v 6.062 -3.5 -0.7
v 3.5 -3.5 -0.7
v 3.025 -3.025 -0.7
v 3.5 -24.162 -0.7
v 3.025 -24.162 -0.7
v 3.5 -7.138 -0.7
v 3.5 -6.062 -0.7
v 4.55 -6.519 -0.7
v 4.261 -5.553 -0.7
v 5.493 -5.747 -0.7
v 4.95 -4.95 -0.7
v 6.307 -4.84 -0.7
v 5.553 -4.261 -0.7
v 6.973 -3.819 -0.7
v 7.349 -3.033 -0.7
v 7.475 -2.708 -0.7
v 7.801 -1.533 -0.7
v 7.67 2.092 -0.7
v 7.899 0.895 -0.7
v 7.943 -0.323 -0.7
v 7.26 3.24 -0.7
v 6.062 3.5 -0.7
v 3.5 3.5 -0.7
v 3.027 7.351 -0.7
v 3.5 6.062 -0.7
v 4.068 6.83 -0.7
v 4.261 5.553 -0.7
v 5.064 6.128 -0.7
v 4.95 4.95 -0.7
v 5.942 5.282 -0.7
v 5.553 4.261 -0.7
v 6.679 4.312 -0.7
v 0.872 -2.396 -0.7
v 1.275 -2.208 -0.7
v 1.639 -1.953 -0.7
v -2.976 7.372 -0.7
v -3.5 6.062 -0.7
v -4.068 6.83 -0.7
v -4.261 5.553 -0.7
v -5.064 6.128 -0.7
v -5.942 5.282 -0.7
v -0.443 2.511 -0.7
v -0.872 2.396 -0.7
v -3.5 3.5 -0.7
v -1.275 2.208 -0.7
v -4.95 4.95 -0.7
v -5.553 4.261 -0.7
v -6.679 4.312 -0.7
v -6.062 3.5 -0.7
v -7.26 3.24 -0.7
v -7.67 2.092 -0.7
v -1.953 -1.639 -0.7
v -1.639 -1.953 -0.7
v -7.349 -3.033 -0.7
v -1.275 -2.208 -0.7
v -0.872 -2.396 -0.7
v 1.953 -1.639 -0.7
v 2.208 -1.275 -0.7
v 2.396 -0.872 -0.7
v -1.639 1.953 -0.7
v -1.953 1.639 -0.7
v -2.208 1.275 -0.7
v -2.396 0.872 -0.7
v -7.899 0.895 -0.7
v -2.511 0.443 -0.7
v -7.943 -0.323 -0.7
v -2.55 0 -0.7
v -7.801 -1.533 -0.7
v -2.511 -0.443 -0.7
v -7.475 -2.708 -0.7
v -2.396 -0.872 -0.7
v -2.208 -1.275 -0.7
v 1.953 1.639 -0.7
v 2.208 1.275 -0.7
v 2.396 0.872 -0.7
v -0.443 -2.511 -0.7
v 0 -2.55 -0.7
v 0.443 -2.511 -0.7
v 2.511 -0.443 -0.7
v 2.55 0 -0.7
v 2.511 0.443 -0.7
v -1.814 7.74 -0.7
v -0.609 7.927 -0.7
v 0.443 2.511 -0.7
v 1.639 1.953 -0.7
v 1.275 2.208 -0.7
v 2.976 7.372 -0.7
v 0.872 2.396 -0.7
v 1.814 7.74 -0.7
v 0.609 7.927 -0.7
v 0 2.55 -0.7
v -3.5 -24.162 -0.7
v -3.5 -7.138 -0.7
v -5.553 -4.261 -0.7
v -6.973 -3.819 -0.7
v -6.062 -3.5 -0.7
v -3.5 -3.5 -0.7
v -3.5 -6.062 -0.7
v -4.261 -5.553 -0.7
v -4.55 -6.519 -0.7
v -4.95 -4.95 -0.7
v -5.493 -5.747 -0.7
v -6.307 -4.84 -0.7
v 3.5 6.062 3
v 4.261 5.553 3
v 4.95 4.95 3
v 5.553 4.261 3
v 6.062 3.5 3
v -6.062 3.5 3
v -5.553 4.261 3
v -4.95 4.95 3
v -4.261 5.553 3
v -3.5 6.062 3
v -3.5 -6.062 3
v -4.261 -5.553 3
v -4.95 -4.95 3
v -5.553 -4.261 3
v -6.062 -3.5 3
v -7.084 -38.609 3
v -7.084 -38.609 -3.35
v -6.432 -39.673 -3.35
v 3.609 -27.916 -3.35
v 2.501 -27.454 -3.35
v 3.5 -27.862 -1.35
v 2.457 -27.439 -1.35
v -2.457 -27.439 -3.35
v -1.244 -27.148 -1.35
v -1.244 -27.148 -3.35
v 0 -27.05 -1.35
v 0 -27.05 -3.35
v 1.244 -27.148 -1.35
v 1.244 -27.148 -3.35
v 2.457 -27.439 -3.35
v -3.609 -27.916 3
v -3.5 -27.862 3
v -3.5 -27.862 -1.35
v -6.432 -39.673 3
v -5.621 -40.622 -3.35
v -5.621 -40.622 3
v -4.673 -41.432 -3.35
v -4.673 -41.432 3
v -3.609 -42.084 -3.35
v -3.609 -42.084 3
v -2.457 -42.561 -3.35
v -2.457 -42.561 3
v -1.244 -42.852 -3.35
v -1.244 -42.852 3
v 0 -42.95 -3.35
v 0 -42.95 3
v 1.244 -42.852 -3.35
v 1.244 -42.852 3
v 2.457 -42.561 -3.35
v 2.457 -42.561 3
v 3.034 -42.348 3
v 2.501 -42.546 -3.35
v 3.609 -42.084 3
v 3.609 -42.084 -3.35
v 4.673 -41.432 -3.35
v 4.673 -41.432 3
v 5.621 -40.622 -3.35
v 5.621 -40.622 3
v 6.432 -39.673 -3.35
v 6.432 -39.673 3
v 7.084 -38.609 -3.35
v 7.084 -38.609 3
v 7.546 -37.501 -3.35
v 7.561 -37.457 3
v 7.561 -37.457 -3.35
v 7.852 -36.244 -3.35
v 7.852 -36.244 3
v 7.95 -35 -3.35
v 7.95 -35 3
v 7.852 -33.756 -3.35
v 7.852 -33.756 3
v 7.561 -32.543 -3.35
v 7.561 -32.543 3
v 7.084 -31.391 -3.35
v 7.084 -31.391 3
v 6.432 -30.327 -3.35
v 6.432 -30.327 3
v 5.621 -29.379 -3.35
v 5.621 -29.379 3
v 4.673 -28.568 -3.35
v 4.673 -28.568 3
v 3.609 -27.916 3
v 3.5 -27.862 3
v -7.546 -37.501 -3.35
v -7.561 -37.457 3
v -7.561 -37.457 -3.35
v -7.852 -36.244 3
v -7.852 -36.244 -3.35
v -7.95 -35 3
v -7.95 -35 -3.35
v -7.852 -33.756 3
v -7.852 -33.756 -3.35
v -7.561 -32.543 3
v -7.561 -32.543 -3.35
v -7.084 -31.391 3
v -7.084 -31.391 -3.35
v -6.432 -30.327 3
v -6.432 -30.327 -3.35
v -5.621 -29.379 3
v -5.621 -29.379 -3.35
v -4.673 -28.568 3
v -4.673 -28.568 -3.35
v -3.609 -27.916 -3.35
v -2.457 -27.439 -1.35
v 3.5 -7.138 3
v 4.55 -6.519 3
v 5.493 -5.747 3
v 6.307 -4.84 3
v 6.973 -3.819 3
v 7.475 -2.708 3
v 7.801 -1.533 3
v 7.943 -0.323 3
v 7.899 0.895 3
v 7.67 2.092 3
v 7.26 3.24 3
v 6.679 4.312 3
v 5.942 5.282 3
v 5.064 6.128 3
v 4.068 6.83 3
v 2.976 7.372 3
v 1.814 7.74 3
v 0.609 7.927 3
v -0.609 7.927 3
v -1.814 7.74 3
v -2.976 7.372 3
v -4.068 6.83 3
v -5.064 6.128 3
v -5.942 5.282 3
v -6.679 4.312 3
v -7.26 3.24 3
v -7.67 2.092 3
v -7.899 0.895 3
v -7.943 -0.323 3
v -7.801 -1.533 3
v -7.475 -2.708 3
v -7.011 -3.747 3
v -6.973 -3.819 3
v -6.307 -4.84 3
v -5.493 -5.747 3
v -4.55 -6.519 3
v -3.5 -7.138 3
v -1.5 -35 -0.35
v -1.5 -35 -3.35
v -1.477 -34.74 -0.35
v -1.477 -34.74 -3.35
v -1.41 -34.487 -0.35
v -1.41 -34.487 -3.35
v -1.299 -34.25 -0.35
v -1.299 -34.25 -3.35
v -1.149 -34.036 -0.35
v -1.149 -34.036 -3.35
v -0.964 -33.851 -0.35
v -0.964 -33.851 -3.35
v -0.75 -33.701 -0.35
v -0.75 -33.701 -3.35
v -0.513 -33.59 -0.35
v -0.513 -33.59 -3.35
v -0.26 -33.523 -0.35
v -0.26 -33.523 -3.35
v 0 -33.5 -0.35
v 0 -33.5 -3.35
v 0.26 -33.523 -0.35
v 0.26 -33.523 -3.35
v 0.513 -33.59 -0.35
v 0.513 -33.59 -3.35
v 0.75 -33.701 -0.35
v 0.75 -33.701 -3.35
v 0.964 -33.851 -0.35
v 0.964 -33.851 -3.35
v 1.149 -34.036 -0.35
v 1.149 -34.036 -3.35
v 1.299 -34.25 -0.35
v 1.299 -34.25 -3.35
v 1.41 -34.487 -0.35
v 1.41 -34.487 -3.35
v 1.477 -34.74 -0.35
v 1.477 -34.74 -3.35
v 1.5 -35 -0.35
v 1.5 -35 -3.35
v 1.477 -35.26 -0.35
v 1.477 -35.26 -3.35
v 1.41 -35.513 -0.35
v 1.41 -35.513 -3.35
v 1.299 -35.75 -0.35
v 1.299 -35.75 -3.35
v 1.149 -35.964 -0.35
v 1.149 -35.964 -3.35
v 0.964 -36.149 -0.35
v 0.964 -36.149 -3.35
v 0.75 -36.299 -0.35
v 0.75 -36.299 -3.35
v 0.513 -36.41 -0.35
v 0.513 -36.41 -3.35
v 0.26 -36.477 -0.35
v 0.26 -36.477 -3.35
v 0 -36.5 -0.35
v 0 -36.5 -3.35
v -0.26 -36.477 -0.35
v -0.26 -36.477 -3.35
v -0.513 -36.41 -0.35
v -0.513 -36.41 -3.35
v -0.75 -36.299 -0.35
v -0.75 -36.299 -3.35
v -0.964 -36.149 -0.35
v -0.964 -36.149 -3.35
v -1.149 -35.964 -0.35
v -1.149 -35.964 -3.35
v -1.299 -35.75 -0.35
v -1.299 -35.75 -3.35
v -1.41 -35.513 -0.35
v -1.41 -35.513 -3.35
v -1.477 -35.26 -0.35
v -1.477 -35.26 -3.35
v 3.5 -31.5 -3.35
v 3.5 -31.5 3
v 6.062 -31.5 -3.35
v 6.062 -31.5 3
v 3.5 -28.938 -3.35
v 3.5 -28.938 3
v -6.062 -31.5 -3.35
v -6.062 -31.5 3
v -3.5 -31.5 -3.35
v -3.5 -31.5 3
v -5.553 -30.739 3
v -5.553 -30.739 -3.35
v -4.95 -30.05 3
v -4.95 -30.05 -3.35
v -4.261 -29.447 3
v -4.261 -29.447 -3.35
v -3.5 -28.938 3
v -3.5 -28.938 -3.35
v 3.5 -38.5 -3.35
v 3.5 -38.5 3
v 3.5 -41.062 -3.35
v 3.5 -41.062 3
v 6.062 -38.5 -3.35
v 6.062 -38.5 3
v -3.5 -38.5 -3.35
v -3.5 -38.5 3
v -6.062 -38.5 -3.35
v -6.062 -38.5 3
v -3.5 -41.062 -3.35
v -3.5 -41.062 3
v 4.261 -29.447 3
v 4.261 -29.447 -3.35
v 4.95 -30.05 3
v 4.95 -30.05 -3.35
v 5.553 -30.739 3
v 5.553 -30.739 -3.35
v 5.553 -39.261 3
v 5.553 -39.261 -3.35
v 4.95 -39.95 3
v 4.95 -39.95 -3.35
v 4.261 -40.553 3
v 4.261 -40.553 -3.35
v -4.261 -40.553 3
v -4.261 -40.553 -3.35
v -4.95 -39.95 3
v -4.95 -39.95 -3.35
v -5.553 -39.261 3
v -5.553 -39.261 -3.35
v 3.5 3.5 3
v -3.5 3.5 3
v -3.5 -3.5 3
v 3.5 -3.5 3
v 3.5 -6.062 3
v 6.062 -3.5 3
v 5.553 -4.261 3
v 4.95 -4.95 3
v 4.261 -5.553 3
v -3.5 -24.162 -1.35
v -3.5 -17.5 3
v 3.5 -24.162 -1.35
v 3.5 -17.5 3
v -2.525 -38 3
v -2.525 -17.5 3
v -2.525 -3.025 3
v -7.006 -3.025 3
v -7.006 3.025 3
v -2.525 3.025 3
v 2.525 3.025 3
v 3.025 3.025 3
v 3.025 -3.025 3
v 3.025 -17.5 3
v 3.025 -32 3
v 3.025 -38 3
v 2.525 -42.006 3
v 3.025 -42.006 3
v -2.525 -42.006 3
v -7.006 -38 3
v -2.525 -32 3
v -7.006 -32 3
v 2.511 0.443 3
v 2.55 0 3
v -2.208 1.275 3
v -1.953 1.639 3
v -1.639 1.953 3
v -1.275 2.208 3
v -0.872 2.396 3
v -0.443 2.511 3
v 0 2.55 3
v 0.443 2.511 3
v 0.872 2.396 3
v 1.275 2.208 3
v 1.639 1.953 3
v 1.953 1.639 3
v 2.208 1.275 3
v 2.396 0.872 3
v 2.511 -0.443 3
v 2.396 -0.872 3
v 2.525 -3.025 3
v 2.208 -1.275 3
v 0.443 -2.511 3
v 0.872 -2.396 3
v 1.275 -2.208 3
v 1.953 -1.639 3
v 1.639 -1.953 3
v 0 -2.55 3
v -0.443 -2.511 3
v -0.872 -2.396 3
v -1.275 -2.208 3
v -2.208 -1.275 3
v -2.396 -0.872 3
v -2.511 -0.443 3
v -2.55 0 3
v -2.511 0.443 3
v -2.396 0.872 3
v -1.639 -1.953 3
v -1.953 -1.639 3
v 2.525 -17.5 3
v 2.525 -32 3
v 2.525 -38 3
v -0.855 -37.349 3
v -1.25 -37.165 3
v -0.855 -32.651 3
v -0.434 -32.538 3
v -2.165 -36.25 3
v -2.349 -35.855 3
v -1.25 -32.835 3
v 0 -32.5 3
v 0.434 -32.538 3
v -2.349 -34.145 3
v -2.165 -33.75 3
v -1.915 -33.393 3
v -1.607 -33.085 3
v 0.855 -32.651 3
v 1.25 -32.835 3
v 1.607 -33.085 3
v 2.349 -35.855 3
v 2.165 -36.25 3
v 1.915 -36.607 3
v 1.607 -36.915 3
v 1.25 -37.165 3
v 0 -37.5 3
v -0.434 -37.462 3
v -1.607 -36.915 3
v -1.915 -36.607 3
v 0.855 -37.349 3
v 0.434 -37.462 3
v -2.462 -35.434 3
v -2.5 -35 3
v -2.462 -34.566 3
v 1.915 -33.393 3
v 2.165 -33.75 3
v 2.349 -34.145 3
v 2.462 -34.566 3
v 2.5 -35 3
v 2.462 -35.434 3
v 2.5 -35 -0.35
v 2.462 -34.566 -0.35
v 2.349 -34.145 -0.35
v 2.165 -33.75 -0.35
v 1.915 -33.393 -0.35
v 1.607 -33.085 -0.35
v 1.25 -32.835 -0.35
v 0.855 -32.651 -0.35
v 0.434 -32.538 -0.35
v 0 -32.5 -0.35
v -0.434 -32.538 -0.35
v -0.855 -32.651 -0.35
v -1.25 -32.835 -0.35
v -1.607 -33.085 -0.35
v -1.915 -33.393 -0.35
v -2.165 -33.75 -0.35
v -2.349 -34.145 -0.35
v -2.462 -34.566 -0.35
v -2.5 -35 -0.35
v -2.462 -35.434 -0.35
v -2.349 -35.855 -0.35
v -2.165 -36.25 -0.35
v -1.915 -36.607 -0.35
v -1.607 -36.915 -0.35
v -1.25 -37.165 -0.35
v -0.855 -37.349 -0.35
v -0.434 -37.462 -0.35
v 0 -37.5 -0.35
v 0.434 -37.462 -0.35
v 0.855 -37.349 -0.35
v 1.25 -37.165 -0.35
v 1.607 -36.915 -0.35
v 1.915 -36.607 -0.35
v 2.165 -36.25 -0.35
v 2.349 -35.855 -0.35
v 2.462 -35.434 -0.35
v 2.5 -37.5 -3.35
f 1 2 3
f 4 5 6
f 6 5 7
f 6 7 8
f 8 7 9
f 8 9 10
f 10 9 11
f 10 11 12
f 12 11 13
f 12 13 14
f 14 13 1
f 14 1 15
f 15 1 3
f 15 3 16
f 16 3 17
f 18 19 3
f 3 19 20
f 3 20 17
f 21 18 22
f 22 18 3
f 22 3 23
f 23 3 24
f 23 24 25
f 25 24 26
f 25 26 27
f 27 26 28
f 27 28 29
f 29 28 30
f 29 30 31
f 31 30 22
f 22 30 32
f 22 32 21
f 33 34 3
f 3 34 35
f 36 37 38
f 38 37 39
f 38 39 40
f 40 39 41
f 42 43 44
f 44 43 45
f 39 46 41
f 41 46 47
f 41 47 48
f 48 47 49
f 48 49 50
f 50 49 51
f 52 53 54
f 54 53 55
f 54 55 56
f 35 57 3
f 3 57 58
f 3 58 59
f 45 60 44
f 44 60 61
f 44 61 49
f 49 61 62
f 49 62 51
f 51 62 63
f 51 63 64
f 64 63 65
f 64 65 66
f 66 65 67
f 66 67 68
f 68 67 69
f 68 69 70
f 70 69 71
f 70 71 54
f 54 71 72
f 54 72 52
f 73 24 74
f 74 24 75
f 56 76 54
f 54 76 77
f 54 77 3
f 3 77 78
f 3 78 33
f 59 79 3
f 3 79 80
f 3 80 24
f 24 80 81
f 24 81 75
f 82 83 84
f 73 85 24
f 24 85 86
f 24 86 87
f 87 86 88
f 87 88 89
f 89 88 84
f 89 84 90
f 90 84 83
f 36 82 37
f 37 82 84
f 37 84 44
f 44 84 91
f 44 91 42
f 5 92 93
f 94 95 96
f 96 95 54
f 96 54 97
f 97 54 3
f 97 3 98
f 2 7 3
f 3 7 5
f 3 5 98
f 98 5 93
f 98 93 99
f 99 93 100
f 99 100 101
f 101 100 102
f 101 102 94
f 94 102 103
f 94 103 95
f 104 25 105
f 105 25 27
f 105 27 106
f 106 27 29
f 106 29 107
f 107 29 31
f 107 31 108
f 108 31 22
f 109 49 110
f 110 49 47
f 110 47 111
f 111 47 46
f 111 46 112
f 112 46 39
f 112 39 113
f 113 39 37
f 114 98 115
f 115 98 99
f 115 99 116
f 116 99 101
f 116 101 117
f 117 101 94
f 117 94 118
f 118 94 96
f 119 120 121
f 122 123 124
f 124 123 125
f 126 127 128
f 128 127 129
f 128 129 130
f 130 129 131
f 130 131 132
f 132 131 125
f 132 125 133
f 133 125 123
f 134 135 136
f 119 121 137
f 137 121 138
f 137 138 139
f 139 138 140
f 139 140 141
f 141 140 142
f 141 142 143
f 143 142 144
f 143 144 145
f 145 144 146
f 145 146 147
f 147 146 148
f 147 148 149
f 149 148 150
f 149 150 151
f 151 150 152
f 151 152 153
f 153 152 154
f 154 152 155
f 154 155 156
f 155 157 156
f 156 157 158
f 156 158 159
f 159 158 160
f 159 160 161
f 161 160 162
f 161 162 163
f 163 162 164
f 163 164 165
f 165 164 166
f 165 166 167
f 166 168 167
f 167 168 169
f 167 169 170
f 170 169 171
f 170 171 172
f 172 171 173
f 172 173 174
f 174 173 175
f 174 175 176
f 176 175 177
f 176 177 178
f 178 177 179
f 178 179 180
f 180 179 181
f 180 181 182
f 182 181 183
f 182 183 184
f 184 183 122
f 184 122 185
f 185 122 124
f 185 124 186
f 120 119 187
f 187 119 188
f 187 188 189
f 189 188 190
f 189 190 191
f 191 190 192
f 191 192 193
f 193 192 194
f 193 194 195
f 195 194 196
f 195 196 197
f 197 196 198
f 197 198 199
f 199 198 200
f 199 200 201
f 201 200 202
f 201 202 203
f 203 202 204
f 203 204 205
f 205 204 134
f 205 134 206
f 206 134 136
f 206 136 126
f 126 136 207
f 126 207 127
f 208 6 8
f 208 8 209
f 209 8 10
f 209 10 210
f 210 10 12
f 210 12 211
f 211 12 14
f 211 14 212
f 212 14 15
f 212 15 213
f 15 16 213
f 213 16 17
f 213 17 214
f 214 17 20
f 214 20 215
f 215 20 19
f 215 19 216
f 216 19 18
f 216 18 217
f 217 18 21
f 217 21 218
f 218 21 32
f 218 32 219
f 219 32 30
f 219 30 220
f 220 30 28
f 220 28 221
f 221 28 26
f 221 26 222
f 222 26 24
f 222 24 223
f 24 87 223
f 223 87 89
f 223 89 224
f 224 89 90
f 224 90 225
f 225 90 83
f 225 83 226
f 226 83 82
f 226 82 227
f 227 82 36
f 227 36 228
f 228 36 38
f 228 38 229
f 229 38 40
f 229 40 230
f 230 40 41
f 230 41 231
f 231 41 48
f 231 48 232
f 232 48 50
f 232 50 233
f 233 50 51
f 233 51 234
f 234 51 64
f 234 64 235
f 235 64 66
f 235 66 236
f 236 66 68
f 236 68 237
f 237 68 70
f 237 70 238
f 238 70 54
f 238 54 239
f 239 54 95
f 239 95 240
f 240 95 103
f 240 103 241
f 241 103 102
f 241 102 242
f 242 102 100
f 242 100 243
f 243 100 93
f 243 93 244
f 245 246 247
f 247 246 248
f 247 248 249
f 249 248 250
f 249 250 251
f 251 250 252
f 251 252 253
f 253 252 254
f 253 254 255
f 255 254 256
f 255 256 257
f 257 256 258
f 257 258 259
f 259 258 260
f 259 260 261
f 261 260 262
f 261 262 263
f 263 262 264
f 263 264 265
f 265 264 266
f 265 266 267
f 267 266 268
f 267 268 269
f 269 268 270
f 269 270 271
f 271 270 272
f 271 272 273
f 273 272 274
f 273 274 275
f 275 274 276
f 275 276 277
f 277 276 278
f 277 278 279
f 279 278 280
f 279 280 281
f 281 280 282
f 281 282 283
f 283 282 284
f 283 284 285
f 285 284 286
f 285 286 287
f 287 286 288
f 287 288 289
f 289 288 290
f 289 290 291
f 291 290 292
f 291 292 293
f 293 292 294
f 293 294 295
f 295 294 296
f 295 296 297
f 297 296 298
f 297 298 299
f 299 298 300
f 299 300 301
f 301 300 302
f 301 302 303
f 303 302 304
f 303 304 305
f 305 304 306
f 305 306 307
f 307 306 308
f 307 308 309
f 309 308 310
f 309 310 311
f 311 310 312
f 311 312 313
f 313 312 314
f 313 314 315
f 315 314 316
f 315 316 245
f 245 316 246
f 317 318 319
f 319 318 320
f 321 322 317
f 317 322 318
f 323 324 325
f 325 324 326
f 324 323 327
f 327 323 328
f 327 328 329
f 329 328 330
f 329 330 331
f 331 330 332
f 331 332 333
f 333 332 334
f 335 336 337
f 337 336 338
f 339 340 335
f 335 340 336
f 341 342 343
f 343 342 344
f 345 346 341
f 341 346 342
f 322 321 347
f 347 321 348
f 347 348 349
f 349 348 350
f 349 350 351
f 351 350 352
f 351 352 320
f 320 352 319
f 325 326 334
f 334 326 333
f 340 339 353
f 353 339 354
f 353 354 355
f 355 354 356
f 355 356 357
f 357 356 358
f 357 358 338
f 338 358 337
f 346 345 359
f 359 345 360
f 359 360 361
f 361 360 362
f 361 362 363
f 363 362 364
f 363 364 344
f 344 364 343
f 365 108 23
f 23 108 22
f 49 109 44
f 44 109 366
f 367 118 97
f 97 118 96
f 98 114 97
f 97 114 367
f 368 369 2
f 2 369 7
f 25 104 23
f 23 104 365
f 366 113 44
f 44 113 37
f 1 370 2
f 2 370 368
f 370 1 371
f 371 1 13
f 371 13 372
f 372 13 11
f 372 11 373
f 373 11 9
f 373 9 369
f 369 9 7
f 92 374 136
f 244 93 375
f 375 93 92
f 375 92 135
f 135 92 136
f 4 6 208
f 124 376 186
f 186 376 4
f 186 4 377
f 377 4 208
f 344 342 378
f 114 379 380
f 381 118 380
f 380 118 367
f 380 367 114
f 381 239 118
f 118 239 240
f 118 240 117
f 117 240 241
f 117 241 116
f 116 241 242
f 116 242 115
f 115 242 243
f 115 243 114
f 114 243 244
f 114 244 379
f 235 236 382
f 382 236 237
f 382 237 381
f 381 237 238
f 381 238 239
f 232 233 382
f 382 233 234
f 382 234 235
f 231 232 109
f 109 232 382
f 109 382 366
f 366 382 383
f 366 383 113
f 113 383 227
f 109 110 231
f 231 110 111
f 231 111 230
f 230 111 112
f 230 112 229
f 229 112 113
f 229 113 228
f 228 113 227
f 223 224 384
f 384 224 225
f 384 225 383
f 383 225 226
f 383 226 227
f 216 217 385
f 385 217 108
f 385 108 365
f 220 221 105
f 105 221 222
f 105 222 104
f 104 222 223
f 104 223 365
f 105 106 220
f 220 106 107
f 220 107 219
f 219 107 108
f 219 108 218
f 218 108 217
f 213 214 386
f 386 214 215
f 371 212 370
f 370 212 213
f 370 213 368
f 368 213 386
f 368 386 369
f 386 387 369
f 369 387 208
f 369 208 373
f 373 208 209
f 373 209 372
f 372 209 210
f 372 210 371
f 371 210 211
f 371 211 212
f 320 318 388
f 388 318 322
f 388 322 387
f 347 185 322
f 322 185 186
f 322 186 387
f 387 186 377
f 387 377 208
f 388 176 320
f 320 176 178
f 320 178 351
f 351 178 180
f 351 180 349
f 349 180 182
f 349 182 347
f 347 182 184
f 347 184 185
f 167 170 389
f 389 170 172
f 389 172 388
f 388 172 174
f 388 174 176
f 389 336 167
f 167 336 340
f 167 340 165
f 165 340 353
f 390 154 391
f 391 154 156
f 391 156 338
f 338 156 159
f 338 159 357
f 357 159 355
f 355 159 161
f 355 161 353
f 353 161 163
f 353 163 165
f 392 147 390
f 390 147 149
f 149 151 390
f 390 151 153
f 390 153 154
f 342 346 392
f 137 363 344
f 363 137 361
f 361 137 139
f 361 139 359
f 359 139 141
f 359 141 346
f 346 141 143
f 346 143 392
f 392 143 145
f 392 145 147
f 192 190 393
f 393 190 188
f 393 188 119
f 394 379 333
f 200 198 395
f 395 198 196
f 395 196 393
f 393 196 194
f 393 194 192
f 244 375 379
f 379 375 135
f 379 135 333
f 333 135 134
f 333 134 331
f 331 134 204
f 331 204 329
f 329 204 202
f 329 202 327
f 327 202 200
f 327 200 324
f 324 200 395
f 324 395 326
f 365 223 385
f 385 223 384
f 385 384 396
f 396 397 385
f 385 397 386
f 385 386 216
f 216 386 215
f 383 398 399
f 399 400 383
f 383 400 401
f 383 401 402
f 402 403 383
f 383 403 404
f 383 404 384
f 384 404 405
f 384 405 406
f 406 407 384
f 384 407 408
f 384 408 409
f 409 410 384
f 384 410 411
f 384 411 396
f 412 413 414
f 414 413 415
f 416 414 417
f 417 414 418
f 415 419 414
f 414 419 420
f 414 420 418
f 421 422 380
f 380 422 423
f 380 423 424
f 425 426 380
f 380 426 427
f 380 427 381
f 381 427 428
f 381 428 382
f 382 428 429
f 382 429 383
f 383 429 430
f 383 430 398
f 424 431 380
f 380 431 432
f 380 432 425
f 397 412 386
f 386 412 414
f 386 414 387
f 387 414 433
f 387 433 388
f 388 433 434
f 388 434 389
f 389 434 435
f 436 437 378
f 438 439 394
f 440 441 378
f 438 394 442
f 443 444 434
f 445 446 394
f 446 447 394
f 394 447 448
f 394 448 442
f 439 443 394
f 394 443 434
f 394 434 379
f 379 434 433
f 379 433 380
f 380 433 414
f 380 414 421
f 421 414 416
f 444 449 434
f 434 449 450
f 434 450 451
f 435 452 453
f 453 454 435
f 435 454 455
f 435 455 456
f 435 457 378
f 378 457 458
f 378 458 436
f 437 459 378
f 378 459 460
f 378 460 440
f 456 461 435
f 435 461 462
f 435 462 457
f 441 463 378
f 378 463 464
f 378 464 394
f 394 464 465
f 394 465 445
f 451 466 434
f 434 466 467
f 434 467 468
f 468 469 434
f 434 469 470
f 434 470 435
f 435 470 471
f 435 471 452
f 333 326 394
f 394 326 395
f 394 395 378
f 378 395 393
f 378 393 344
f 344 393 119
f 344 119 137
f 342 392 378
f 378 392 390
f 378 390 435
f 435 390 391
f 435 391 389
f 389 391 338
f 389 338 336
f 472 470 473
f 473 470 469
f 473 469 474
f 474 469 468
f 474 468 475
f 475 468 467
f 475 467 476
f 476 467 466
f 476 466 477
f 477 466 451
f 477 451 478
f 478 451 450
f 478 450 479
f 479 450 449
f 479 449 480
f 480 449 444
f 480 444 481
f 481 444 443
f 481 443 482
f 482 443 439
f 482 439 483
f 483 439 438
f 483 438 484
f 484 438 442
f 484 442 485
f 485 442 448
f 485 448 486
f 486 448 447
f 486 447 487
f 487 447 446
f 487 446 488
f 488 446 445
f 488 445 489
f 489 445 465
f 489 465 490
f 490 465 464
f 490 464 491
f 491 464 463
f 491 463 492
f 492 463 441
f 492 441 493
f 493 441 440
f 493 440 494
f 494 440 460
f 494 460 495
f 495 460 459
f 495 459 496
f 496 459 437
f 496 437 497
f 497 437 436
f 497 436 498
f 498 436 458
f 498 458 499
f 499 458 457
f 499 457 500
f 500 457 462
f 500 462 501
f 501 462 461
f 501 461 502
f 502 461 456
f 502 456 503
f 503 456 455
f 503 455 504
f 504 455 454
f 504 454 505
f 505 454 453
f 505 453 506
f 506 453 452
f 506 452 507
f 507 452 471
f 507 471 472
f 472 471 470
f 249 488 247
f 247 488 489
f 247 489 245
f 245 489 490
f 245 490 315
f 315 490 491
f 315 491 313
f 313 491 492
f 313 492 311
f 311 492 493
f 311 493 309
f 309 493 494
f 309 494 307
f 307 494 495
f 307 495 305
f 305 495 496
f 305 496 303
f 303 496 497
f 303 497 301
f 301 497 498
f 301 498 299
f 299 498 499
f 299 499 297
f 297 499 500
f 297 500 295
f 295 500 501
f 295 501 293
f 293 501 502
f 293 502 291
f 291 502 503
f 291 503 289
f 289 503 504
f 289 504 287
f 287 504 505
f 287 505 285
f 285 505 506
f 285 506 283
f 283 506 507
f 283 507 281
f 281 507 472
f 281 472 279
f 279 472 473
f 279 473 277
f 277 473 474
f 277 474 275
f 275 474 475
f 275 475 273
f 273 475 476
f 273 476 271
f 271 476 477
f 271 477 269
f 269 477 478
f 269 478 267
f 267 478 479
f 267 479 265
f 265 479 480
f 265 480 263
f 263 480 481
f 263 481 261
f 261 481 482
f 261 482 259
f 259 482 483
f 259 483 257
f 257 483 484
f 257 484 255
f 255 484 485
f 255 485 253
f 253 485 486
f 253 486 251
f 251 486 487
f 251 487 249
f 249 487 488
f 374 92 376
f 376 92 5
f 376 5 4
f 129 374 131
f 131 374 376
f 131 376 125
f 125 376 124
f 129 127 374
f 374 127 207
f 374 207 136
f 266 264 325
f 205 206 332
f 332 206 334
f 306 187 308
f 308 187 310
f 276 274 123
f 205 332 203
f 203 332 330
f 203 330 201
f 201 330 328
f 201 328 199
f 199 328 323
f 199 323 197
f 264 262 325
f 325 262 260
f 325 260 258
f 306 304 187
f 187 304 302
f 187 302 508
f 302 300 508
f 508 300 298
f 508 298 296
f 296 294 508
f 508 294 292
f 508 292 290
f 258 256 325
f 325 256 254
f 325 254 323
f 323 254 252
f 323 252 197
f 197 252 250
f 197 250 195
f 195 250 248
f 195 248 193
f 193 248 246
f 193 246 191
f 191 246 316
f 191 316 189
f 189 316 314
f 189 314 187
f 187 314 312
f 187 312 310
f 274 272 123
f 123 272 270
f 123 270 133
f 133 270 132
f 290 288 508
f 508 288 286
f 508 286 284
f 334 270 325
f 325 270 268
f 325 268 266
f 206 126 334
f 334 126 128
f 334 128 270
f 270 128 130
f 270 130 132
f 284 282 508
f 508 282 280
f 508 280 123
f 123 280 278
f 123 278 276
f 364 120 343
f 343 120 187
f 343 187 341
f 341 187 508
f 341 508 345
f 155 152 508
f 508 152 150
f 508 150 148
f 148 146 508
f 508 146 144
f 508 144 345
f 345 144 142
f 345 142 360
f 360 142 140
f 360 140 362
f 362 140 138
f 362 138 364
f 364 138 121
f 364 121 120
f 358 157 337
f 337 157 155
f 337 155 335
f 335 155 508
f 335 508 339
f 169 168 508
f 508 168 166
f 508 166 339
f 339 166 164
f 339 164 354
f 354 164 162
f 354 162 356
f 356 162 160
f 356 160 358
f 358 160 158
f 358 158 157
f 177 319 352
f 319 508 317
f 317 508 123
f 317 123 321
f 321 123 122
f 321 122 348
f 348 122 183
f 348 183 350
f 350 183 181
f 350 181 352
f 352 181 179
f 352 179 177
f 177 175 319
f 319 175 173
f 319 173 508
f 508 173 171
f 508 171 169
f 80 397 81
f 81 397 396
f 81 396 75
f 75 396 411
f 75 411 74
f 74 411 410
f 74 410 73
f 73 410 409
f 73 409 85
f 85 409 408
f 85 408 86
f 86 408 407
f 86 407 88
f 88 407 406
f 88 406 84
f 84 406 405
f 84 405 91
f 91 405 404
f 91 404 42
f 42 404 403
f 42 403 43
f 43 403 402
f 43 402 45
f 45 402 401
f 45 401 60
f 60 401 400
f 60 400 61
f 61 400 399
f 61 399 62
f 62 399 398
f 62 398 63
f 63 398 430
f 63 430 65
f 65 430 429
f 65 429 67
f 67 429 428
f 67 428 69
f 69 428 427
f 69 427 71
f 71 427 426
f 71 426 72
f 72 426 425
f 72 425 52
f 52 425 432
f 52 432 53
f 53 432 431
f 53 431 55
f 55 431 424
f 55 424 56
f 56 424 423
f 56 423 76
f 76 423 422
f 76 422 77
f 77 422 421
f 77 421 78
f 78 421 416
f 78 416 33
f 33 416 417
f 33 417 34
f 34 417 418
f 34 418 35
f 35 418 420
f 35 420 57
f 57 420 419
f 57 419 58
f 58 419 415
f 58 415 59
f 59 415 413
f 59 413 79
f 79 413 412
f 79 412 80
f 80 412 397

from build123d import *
from build123d.topology import SkipClean

# Parameters (mm, degrees)
SKETCH1_R               = 3.5
SKETCH1_R_2             = 1.5
BOSS_EXTRUDE4_DEPTH     = 3
BOSS_EXTRUDE5_START     = 3
SKETCH3_R               = 1.5
BOSS_EXTRUDE5_DEPTH     = 3
SKETCH4_R               = 2.5
CUT_EXTRUDE1_DEPTH      = 1.5
SKETCH5_R               = 7
CUT_EXTRUDE2_DEPTH      = 2
SKETCH6_R               = 7.95
CUT_EXTRUDE3_DEPTH      = 1
SKETCH7_R               = 2.5
CUT_EXTRUDE4_DEPTH      = 1.85
BOSS_EXTRUDE6_START     = 0.7
SKETCH8_R               = 7.95
SKETCH8_R_2             = 7
BOSS_EXTRUDE6_DEPTH     = 0.7
BOSS_EXTRUDE8_START     = 0.7
SKETCH9_R               = 7.95
SKETCH9_R_2             = 1.5
BOSS_EXTRUDE8_DEPTH     = 0.7
BOSS_EXTRUDE9_START     = 0.7
BOSS_EXTRUDE9_DEPTH     = 0.7
CUT_EXTRUDE5_DEPTH      = 45.603755447
CUT_EXTRUDE5_DEPTH_BACK = 45.603755447
SKETCH11_W              = 3
SKETCH11_H              = 15.9
SKETCH11_W_2            = 2
BOSS_EXTRUDE10_START    = 0.65
BOSS_EXTRUDE10_DEPTH    = 0.65
BOSS_EXTRUDE11_START    = 2.65
SKETCH13_R              = 1.5
BOSS_EXTRUDE11_DEPTH    = 2.65
SKETCH14_R              = 2.55
CUT_EXTRUDE6_DEPTH      = 45.138730158


with BuildPart() as part:
    # Sketch1 → Boss-Extrude4 (new body)
    # profile 1 of 34: a face of its own
    with BuildSketch(Plane.XY):
        with BuildLine():
            Line((-3.5, 3.5), (0, 3.5))
            Line((0, 3.5), (3.5, 3.5))
            Line((3.5, 3.5), (3.5, 6.062177826))
            ThreePointArc((3.5, 6.062177826), (0, 7), (-3.5, 6.062177826))
            Line((-3.5, 6.062177826), (-3.5, 3.5))
        make_face()
    # profile 2 of 34: a face of its own
    with BuildSketch(Plane.XY):
        with BuildLine():
            ThreePointArc((3.5, 6.062177826), (4.949747468, 4.949747468), (6.062177826, 3.5))
            Line((6.062177826, 3.5), (7.138101989, 3.5))
            ThreePointArc((7.138101989, 3.5), (0, 7.95), (-7.138101989, 3.5))
            Line((-7.138101989, 3.5), (-6.062177826, 3.5))
            ThreePointArc((-6.062177826, 3.5), (-4.949747468, 4.949747468), (-3.5, 6.062177826))
            ThreePointArc((-3.5, 6.062177826), (0, 7), (3.5, 6.062177826))
        make_face()
    # profile 3 of 34: a face of its own
    with BuildSketch(Plane.XY):
        with BuildLine():
            Line((3.5, -27.861898011), (3.5, -7.138101989))
            ThreePointArc((3.5, -7.138101989), (0, -7.95), (-3.5, -7.138101989))
            Line((-3.5, -7.138101989), (-3.5, -27.861898011))
            ThreePointArc((-3.5, -27.861898011), (0, -27.05), (3.5, -27.861898011))
        make_face()
    # profile 4 of 34: a face of its own
    with BuildSketch(Plane.XY):
        with BuildLine():
            Line((-6.062177826, -38.5), (-7.138101989, -38.5))
            ThreePointArc((-7.138101989, -38.5), (0, -42.95), (7.138101989, -38.5))
            Line((7.138101989, -38.5), (6.062177826, -38.5))
            ThreePointArc((6.062177826, -38.5), (4.949747468, -39.949747468), (3.5, -41.062177826))
            ThreePointArc((3.5, -41.062177826), (0, -42), (-3.5, -41.062177826))
            ThreePointArc((-3.5, -41.062177826), (-4.949747468, -39.949747468), (-6.062177826, -38.5))
        make_face()
    # profile 5 of 34: a face of its own
    with BuildSketch(Plane.XY):
        with BuildLine():
            Line((3.5, -41.062177826), (3.5, -38.5))
            Line((3.5, -38.5), (0, -38.5))
            Line((0, -38.5), (-3.5, -38.5))
            Line((-3.5, -38.5), (-3.5, -41.062177826))
            ThreePointArc((-3.5, -41.062177826), (0, -42), (3.5, -41.062177826))
        make_face()
    # profile 6 of 34: a face of its own
    with BuildSketch(Plane.XY):
        with BuildLine():
            ThreePointArc((7.95, -35), (7.744366043, -33.203532746), (7.138101989, -31.5))
            Line((7.138101989, -31.5), (6.062177826, -31.5))
            ThreePointArc((6.062177826, -31.5), (6.761480784, -33.188266684), (7, -35))
            ThreePointArc((7, -35), (6.761480784, -36.811733316), (6.062177826, -38.5))
            Line((6.062177826, -38.5), (7.138101989, -38.5))
            ThreePointArc((7.138101989, -38.5), (7.744366043, -36.796467254), (7.95, -35))
        make_face()
    # profile 7 of 34: a face of its own
    with BuildSketch(Plane.XY):
        with BuildLine():
            Line((-6.062177826, -31.5), (-7.138101989, -31.5))
            ThreePointArc((-7.138101989, -31.5), (-7.95, -35), (-7.138101989, -38.5))
            Line((-7.138101989, -38.5), (-6.062177826, -38.5))
            ThreePointArc((-6.062177826, -38.5), (-7, -35), (-6.062177826, -31.5))
        make_face()
    # profile 8 of 34: a face of its own
    with BuildSketch(Plane.XY):
        with BuildLine():
            Line((3.5, -38.5), (3.5, -35))
            ThreePointArc((3.5, -35), (2.474873734, -37.474873734), (0, -38.5))
            Line((0, -38.5), (3.5, -38.5))
        make_face()
    # profile 9 of 34: a face of its own
    with BuildSketch(Plane.XY):
        with BuildLine():
            ThreePointArc((0, -38.5), (-2.474873734, -37.474873734), (-3.5, -35))
            Line((-3.5, -35), (-3.5, -38.5))
            Line((-3.5, -38.5), (0, -38.5))
        make_face()
    # profile 10 of 34: a face of its own
    with BuildSketch(Plane.XY):
        with BuildLine():
            ThreePointArc((7.95, -35), (7.744366043, -33.203532746), (7.138101989, -31.5))
            Line((7.138101989, -31.5), (6.062177826, -31.5))
            ThreePointArc((6.062177826, -31.5), (6.761480784, -33.188266684), (7, -35))
            ThreePointArc((7, -35), (6.761480784, -36.811733316), (6.062177826, -38.5))
            Line((6.062177826, -38.5), (7.138101989, -38.5))
            ThreePointArc((7.138101989, -38.5), (7.744366043, -36.796467254), (7.95, -35))
        make_face()
    # profile 11 of 34: a face of its own
    with BuildSketch(Plane.XY):
        with BuildLine():
            Line((-6.062177826, -31.5), (-7.138101989, -31.5))
            ThreePointArc((-7.138101989, -31.5), (-7.95, -35), (-7.138101989, -38.5))
            Line((-7.138101989, -38.5), (-6.062177826, -38.5))
            ThreePointArc((-6.062177826, -38.5), (-7, -35), (-6.062177826, -31.5))
        make_face()
    # profile 12 of 34: a face of its own
    with BuildSketch(Plane.XY):
        with Locations((0, -35)):
            Circle(SKETCH1_R)
        with Locations((0, -35)):
            Circle(SKETCH1_R_2, mode=Mode.SUBTRACT)
    # profile 13 of 34: a face of its own
    with BuildSketch(Plane.XY):
        with BuildLine():
            Line((0, -31.5), (-3.5, -31.5))
            Line((-3.5, -31.5), (-3.5, -35))
            ThreePointArc((-3.5, -35), (-2.474873734, -32.525126266), (0, -31.5))
        make_face()
    # profile 14 of 34: a face of its own
    with BuildSketch(Plane.XY):
        with BuildLine():
            Line((3.5, -35), (3.5, -31.5))
            Line((3.5, -31.5), (0, -31.5))
            ThreePointArc((0, -31.5), (2.474873734, -32.525126266), (3.5, -35))
        make_face()
    # profile 15 of 34: a face of its own
    with BuildSketch(Plane.XY):
        with BuildLine():
            Line((3.5, -31.5), (3.5, -28.937822174))
            ThreePointArc((3.5, -28.937822174), (0, -28), (-3.5, -28.937822174))
            Line((-3.5, -28.937822174), (-3.5, -31.5))
            Line((-3.5, -31.5), (0, -31.5))
            Line((0, -31.5), (3.5, -31.5))
        make_face()
    # profile 16 of 34: a face of its own
    with BuildSketch(Plane.XY):
        with BuildLine():
            Line((-3.5, -28.937822174), (-3.5, -27.861898011))
            ThreePointArc((-3.5, -27.861898011), (-5.62149891, -29.37850109), (-7.138101989, -31.5))
            Line((-7.138101989, -31.5), (-6.062177826, -31.5))
            ThreePointArc((-6.062177826, -31.5), (-4.949747468, -30.050252532), (-3.5, -28.937822174))
        make_face()
    # profile 17 of 34: a face of its own
    with BuildSketch(Plane.XY):
        with BuildLine():
            ThreePointArc((7.138101989, -31.5), (5.62149891, -29.37850109), (3.5, -27.861898011))
            Line((3.5, -27.861898011), (3.5, -28.937822174))
            ThreePointArc((3.5, -28.937822174), (4.949747468, -30.050252532), (6.062177826, -31.5))
            Line((6.062177826, -31.5), (7.138101989, -31.5))
        make_face()
    # profile 18 of 34: a face of its own
    with BuildSketch(Plane.XY):
        with BuildLine():
            Line((3.5, -28.937822174), (3.5, -27.861898011))
            ThreePointArc((3.5, -27.861898011), (0, -27.05), (-3.5, -27.861898011))
            Line((-3.5, -27.861898011), (-3.5, -28.937822174))
            ThreePointArc((-3.5, -28.937822174), (0, -28), (3.5, -28.937822174))
        make_face()
    # profile 19 of 34: a face of its own
    with BuildSketch(Plane.XY):
        with BuildLine():
            Line((-3.5, -35), (-3.5, -31.5))
            Line((-3.5, -31.5), (-6.062177826, -31.5))
            ThreePointArc((-6.062177826, -31.5), (-7, -35), (-6.062177826, -38.5))
            Line((-6.062177826, -38.5), (-3.5, -38.5))
            Line((-3.5, -38.5), (-3.5, -35))
        make_face()
    # profile 20 of 34: a face of its own
    with BuildSketch(Plane.XY):
        with BuildLine():
            Line((6.062177826, -31.5), (3.5, -31.5))
            Line((3.5, -31.5), (3.5, -35))
            Line((3.5, -35), (3.5, -38.5))
            Line((3.5, -38.5), (6.062177826, -38.5))
            ThreePointArc((6.062177826, -38.5), (6.761480784, -36.811733316), (7, -35))
            ThreePointArc((7, -35), (6.761480784, -33.188266684), (6.062177826, -31.5))
        make_face()
    # profile 21 of 34: a face of its own
    with BuildSketch(Plane.XY):
        with BuildLine():
            Line((3.5, -6.062177826), (3.5, -3.5))
            Line((3.5, -3.5), (0, -3.5))
            Line((0, -3.5), (-3.5, -3.5))
            Line((-3.5, -3.5), (-3.5, -6.062177826))
            ThreePointArc((-3.5, -6.062177826), (0, -7), (3.5, -6.062177826))
        make_face()
    # profile 22 of 34: a face of its own
    with BuildSketch(Plane.XY):
        with BuildLine():
            Line((3.5, -7.138101989), (3.5, -6.062177826))
            ThreePointArc((3.5, -6.062177826), (0, -7), (-3.5, -6.062177826))
            Line((-3.5, -6.062177826), (-3.5, -7.138101989))
            ThreePointArc((-3.5, -7.138101989), (0, -7.95), (3.5, -7.138101989))
        make_face()
    # profile 23 of 34: a face of its own
    with BuildSketch(Plane.XY):
        with BuildLine():
            Line((7.138101989, -3.5), (6.062177826, -3.5))
            ThreePointArc((6.062177826, -3.5), (4.949747468, -4.949747468), (3.5, -6.062177826))
            Line((3.5, -6.062177826), (3.5, -7.138101989))
            ThreePointArc((3.5, -7.138101989), (5.62149891, -5.62149891), (7.138101989, -3.5))
        make_face()
    # profile 24 of 34: a face of its own
    with BuildSketch(Plane.XY):
        with BuildLine():
            Line((7.138101989, 3.5), (6.062177826, 3.5))
            ThreePointArc((6.062177826, 3.5), (6.761480784, 1.811733316), (7, 0))
            ThreePointArc((7, 0), (6.761480784, -1.811733316), (6.062177826, -3.5))
            Line((6.062177826, -3.5), (7.138101989, -3.5))
            ThreePointArc((7.138101989, -3.5), (7.744366043, -1.796467254), (7.95, 0))
            ThreePointArc((7.95, 0), (7.744366043, 1.796467254), (7.138101989, 3.5))
        make_face()
    # profile 25 of 34: a face of its own
    with BuildSketch(Plane.XY):
        with BuildLine():
            Line((7.138101989, 3.5), (6.062177826, 3.5))
            ThreePointArc((6.062177826, 3.5), (6.761480784, 1.811733316), (7, 0))
            ThreePointArc((7, 0), (6.761480784, -1.811733316), (6.062177826, -3.5))
            Line((6.062177826, -3.5), (7.138101989, -3.5))
            ThreePointArc((7.138101989, -3.5), (7.744366043, -1.796467254), (7.95, 0))
            ThreePointArc((7.95, 0), (7.744366043, 1.796467254), (7.138101989, 3.5))
        make_face()
    # profile 26 of 34: a face of its own
    with BuildSketch(Plane.XY):
        with BuildLine():
            ThreePointArc((-6.062177826, -3.5), (-7, 0), (-6.062177826, 3.5))
            Line((-6.062177826, 3.5), (-7.138101989, 3.5))
            ThreePointArc((-7.138101989, 3.5), (-7.95, 0), (-7.138101989, -3.5))
            Line((-7.138101989, -3.5), (-6.062177826, -3.5))
        make_face()
    # profile 27 of 34: a face of its own
    with BuildSketch(Plane.XY):
        with BuildLine():
            ThreePointArc((-3.5, -6.062177826), (-4.949747468, -4.949747468), (-6.062177826, -3.5))
            Line((-6.062177826, -3.5), (-7.138101989, -3.5))
            ThreePointArc((-7.138101989, -3.5), (-5.62149891, -5.62149891), (-3.5, -7.138101989))
            Line((-3.5, -7.138101989), (-3.5, -6.062177826))
        make_face()
    # profile 28 of 34: a face of its own
    with BuildSketch(Plane.XY):
        with BuildLine():
            Line((-3.5, 0), (-3.5, 3.5))
            Line((-3.5, 3.5), (-6.062177826, 3.5))
            ThreePointArc((-6.062177826, 3.5), (-7, 0), (-6.062177826, -3.5))
            Line((-6.062177826, -3.5), (-3.5, -3.5))
            Line((-3.5, -3.5), (-3.5, 0))
        make_face()
    # profile 29 of 34: a face of its own
    with BuildSketch(Plane.XY):
        with BuildLine():
            Line((6.062177826, 3.5), (3.5, 3.5))
            Line((3.5, 3.5), (3.5, 0))
            Line((3.5, 0), (3.5, -3.5))
            Line((3.5, -3.5), (6.062177826, -3.5))
            ThreePointArc((6.062177826, -3.5), (6.761480784, -1.811733316), (7, 0))
            ThreePointArc((7, 0), (6.761480784, 1.811733316), (6.062177826, 3.5))
        make_face()
    # profile 30 of 34: a face of its own
    with BuildSketch(Plane.XY):
        with BuildLine():
            Line((3.5, -3.5), (3.5, 0))
            ThreePointArc((3.5, 0), (2.474873734, -2.474873734), (0, -3.5))
            Line((0, -3.5), (3.5, -3.5))
        make_face()
    # profile 31 of 34: a face of its own
    with BuildSketch(Plane.XY):
        Circle(SKETCH1_R)
        Circle(SKETCH1_R_2, mode=Mode.SUBTRACT)
    # profile 32 of 34: a face of its own
    with BuildSketch(Plane.XY):
        with BuildLine():
            ThreePointArc((0, -3.5), (-2.474873734, -2.474873734), (-3.5, 0))
            Line((-3.5, 0), (-3.5, -3.5))
            Line((-3.5, -3.5), (0, -3.5))
        make_face()
    # profile 33 of 34: a face of its own
    with BuildSketch(Plane.XY):
        with BuildLine():
            ThreePointArc((-3.5, 0), (-2.474873734, 2.474873734), (0, 3.5))
            Line((0, 3.5), (-3.5, 3.5))
            Line((-3.5, 3.5), (-3.5, 0))
        make_face()
    # profile 34 of 34: a face of its own
    with BuildSketch(Plane.XY):
        with BuildLine():
            Line((3.5, 3.5), (0, 3.5))
            ThreePointArc((0, 3.5), (2.474873734, 2.474873734), (3.5, 0))
            Line((3.5, 0), (3.5, 3.5))
        make_face()
    extrude(amount=BOSS_EXTRUDE4_DEPTH)

    # Sketch3 → Boss-Extrude5 (add)
    # profile 1 of 4: a face of its own
    with SkipClean():  # the faces are left unmerged after this step: merging them gives an invalid solid
        with BuildSketch(Plane(origin=(0, 0, 0), x_dir=(-1, 0, 0), z_dir=(0, 0, -1)).offset(BOSS_EXTRUDE5_START)):
            with BuildLine():
                ThreePointArc((3.5, -7.138101989), (6.746387922, -4.205799567), (7.95, 0))
                ThreePointArc((7.95, 0), (-4.205799567, 6.746387922), (-3.5, -7.138101989))
                ThreePointArc((-3.5, -7.138101989), (0, -7.95), (3.5, -7.138101989))
            make_face()
            with BuildLine():
                ThreePointArc((-6.062177826, 3.5), (-4.949747468, 4.949747468), (-3.5, 6.062177826))
                ThreePointArc((-3.5, 6.062177826), (0, 7), (3.5, 6.062177826))
                ThreePointArc((3.5, 6.062177826), (4.949747468, 4.949747468), (6.062177826, 3.5))
                ThreePointArc((6.062177826, 3.5), (6.761480784, 1.811733316), (7, 0))
                ThreePointArc((7, 0), (6.761480784, -1.811733316), (6.062177826, -3.5))
                ThreePointArc((6.062177826, -3.5), (4.949747468, -4.949747468), (3.5, -6.062177826))
                ThreePointArc((3.5, -6.062177826), (0, -7), (-3.5, -6.062177826))
                ThreePointArc((-3.5, -6.062177826), (-4.949747468, -4.949747468), (-6.062177826, -3.5))
                ThreePointArc((-6.062177826, -3.5), (-7, 0), (-6.062177826, 3.5))
            make_face(mode=Mode.SUBTRACT)
        # profile 2 of 4: a face of its own
        with BuildSketch(Plane(origin=(0, 0, 0), x_dir=(-1, 0, 0), z_dir=(0, 0, -1)).offset(BOSS_EXTRUDE5_START)):
            with BuildLine():
                ThreePointArc((3.5, 6.062177826), (0, 7), (-3.5, 6.062177826))
                Line((-3.5, 6.062177826), (-3.5, 3.5))
                Line((-3.5, 3.5), (-6.062177826, 3.5))
                ThreePointArc((-6.062177826, 3.5), (-7, 0), (-6.062177826, -3.5))
                Line((-6.062177826, -3.5), (-3.5, -3.5))
                Line((-3.5, -3.5), (-3.5, -6.062177826))
                ThreePointArc((-3.5, -6.062177826), (0, -7), (3.5, -6.062177826))
                Line((3.5, -6.062177826), (3.5, -3.5))
                Line((3.5, -3.5), (6.062177826, -3.5))
                ThreePointArc((6.062177826, -3.5), (6.761480784, -1.811733316), (7, 0))
                ThreePointArc((7, 0), (6.761480784, 1.811733316), (6.062177826, 3.5))
                Line((6.062177826, 3.5), (3.5, 3.5))
                Line((3.5, 3.5), (3.5, 6.062177826))
            make_face()
            Circle(SKETCH3_R, mode=Mode.SUBTRACT)
        # profile 3 of 4: a face of its own
        with BuildSketch(Plane(origin=(0, 0, 0), x_dir=(-1, 0, 0), z_dir=(0, 0, -1)).offset(BOSS_EXTRUDE5_START)):
            with BuildLine():
                ThreePointArc((-3.5, -27.861898011), (-4.205799567, -41.746387922), (7.95, -35))
                ThreePointArc((7.95, -35), (6.746387922, -30.794200433), (3.5, -27.861898011))
                ThreePointArc((3.5, -27.861898011), (0, -27.05), (-3.5, -27.861898011))
            make_face()
            with BuildLine():
                ThreePointArc((6.062177826, -38.5), (4.949747468, -39.949747468), (3.5, -41.062177826))
                ThreePointArc((3.5, -41.062177826), (0, -42), (-3.5, -41.062177826))
                ThreePointArc((-3.5, -41.062177826), (-4.949747468, -39.949747468), (-6.062177826, -38.5))
                ThreePointArc((-6.062177826, -38.5), (-7, -35), (-6.062177826, -31.5))
                ThreePointArc((-6.062177826, -31.5), (-4.949747468, -30.050252532), (-3.5, -28.937822174))
                ThreePointArc((-3.5, -28.937822174), (0, -28), (3.5, -28.937822174))
                ThreePointArc((3.5, -28.937822174), (4.949747468, -30.050252532), (6.062177826, -31.5))
                ThreePointArc((6.062177826, -31.5), (6.761480784, -33.188266684), (7, -35))
                ThreePointArc((7, -35), (6.761480784, -36.811733316), (6.062177826, -38.5))
            make_face(mode=Mode.SUBTRACT)
        # profile 4 of 4: a face of its own
        with BuildSketch(Plane(origin=(0, 0, 0), x_dir=(-1, 0, 0), z_dir=(0, 0, -1)).offset(BOSS_EXTRUDE5_START)):
            with BuildLine():
                ThreePointArc((-3.5, -41.062177826), (0, -42), (3.5, -41.062177826))
                Line((3.5, -41.062177826), (3.5, -38.5))
                Line((3.5, -38.5), (6.062177826, -38.5))
                ThreePointArc((6.062177826, -38.5), (6.761480784, -36.811733316), (7, -35))
                ThreePointArc((7, -35), (6.761480784, -33.188266684), (6.062177826, -31.5))
                Line((6.062177826, -31.5), (3.5, -31.5))
                Line((3.5, -31.5), (3.5, -28.937822174))
                ThreePointArc((3.5, -28.937822174), (0, -28), (-3.5, -28.937822174))
                Line((-3.5, -28.937822174), (-3.5, -31.5))
                Line((-3.5, -31.5), (-6.062177826, -31.5))
                ThreePointArc((-6.062177826, -31.5), (-7, -35), (-6.062177826, -38.5))
                Line((-6.062177826, -38.5), (-3.5, -38.5))
                Line((-3.5, -38.5), (-3.5, -41.062177826))
            make_face()
            with Locations((0, -35)):
                Circle(SKETCH3_R, mode=Mode.SUBTRACT)
        extrude(amount=-BOSS_EXTRUDE5_DEPTH)

    # Sketch4 → Cut-Extrude1 (cut)
    with SkipClean():  # the faces are left unmerged after this step: merging them gives an invalid solid
        with BuildSketch(Plane.XY.offset(3)):
            with Locations((0, -35)):
                Circle(SKETCH4_R)
            with Locations(Location((0, 0, 0), (0, 0, 180))):
                Circle(SKETCH4_R)
        extrude(amount=-CUT_EXTRUDE1_DEPTH, mode=Mode.SUBTRACT)

    # Sketch5 → Cut-Extrude2 (cut)
    with SkipClean():  # the faces are left unmerged after this step: merging them gives an invalid solid
        with BuildSketch(Plane(origin=(0, 0, -3), x_dir=(-1, 0, 0), z_dir=(0, 0, -1))):
            Circle(SKETCH5_R)
        extrude(amount=-CUT_EXTRUDE2_DEPTH, mode=Mode.SUBTRACT)

    # Sketch6 → Cut-Extrude3 (cut)
    with SkipClean():  # the faces are left unmerged after this step: merging them gives an invalid solid
        with BuildSketch(Plane(origin=(0, 0, -3), x_dir=(-1, 0, 0), z_dir=(0, 0, -1))):
            with Locations((0, -35)):
                Circle(SKETCH6_R)
        extrude(amount=-CUT_EXTRUDE3_DEPTH, mode=Mode.SUBTRACT)

    # Sketch7 → Cut-Extrude4 (cut)
    with SkipClean():  # the faces are left unmerged after this step: merging them gives an invalid solid
        with BuildSketch(Plane.XY.offset(1.5)):
            with Locations((0, -35)):
                Circle(SKETCH7_R)
        extrude(amount=-CUT_EXTRUDE4_DEPTH, mode=Mode.SUBTRACT)

    # Sketch8 → Boss-Extrude6 (add)
    with SkipClean():  # the faces are left unmerged after this step: merging them gives an invalid solid
        with BuildSketch(Plane(origin=(0, 0, -3), x_dir=(-1, 0, 0), z_dir=(0, 0, -1)).offset(BOSS_EXTRUDE6_START)):
            Circle(SKETCH8_R)
            Circle(SKETCH8_R_2, mode=Mode.SUBTRACT)
        extrude(amount=-BOSS_EXTRUDE6_DEPTH)

    # Sketch9 → Boss-Extrude8 (add)
    # profile 1 of 2: a face of its own
    with SkipClean():  # the faces are left unmerged after this step: merging them gives an invalid solid
        with BuildSketch(Plane(origin=(0, 0, -2), x_dir=(-1, 0, 0), z_dir=(0, 0, -1)).offset(BOSS_EXTRUDE8_START)):
            with Locations((0, -35)):
                Circle(SKETCH9_R)
            with BuildLine():
                ThreePointArc((-6.062177826, -31.5), (-4.949747468, -30.050252532), (-3.5, -28.937822174))
                ThreePointArc((-3.5, -28.937822174), (0, -28), (3.5, -28.937822174))
                ThreePointArc((3.5, -28.937822174), (4.949747468, -30.050252532), (6.062177826, -31.5))
                ThreePointArc((6.062177826, -31.5), (6.761480784, -33.188266684), (7, -35))
                ThreePointArc((7, -35), (6.761480784, -36.811733316), (6.062177826, -38.5))
                ThreePointArc((6.062177826, -38.5), (4.949747468, -39.949747468), (3.5, -41.062177826))
                ThreePointArc((3.5, -41.062177826), (0, -42), (-3.5, -41.062177826))
                ThreePointArc((-3.5, -41.062177826), (-4.949747468, -39.949747468), (-6.062177826, -38.5))
                ThreePointArc((-6.062177826, -38.5), (-7, -35), (-6.062177826, -31.5))
            make_face(mode=Mode.SUBTRACT)
        # profile 2 of 2: a face of its own
        with BuildSketch(Plane(origin=(0, 0, -2), x_dir=(-1, 0, 0), z_dir=(0, 0, -1)).offset(BOSS_EXTRUDE8_START)):
            with BuildLine():
                ThreePointArc((3.5, -28.937822174), (0, -28), (-3.5, -28.937822174))
                Line((-3.5, -28.937822174), (-3.5, -31.5))
                Line((-3.5, -31.5), (-6.062177826, -31.5))
                ThreePointArc((-6.062177826, -31.5), (-7, -35), (-6.062177826, -38.5))
                Line((-6.062177826, -38.5), (-3.5, -38.5))
                Line((-3.5, -38.5), (-3.5, -41.062177826))
                ThreePointArc((-3.5, -41.062177826), (0, -42), (3.5, -41.062177826))
                Line((3.5, -41.062177826), (3.5, -38.5))
                Line((3.5, -38.5), (6.062177826, -38.5))
                ThreePointArc((6.062177826, -38.5), (6.761480784, -36.811733316), (7, -35))
                ThreePointArc((7, -35), (6.761480784, -33.188266684), (6.062177826, -31.5))
                Line((6.062177826, -31.5), (3.5, -31.5))
                Line((3.5, -31.5), (3.5, -28.937822174))
            make_face()
            with Locations((0, -35)):
                Circle(SKETCH9_R_2, mode=Mode.SUBTRACT)
        extrude(amount=-BOSS_EXTRUDE8_DEPTH)

    # Sketch10 → Boss-Extrude9 (add)
    with SkipClean():  # the faces are left unmerged after this step: merging them gives an invalid solid
        with BuildSketch(Plane(origin=(0, 0, 0), x_dir=(-1, 0, 0), z_dir=(0, 0, -1)).offset(BOSS_EXTRUDE9_START)):
            with BuildLine():
                ThreePointArc((3.5, -7.138101989), (0, -7.95), (-3.5, -7.138101989))
                Line((-3.5, -7.138101989), (-3.5, -27.861898011))
                ThreePointArc((-3.5, -27.861898011), (0, -27.05), (3.5, -27.861898011))
                Line((3.5, -27.861898011), (3.5, -7.138101989))
            make_face()
        extrude(amount=-BOSS_EXTRUDE9_DEPTH)

    # Sketch11 → Cut-Extrude5 (cut, two sides: drawn at the far end of the back side and taken through both)
    with SkipClean():  # the faces are left unmerged after this step: merging them gives an invalid solid
        with BuildSketch(Plane(origin=(3.5, 0, 0), x_dir=(0, 0, -1), z_dir=(1, 0, 0)).offset(-CUT_EXTRUDE5_DEPTH_BACK)):
            with Locations((2.2, 0)):
                Rectangle(SKETCH11_W, SKETCH11_H)
            with Locations((1.7, -35)):
                Rectangle(SKETCH11_W_2, SKETCH11_H)
        extrude(amount=CUT_EXTRUDE5_DEPTH + CUT_EXTRUDE5_DEPTH_BACK, mode=Mode.SUBTRACT)

    # Sketch12 → Boss-Extrude10 (add)
    with SkipClean():  # the faces are left unmerged after this step: merging them gives an invalid solid
        with BuildSketch(Plane(origin=(0, 0, -0.7), x_dir=(-1, 0, 0), z_dir=(0, 0, -1)).offset(BOSS_EXTRUDE10_START)):
            with BuildLine():
                Line((-3.5, -24.161898011), (-3.5, -27.861898011))
                ThreePointArc((-3.5, -27.861898011), (0, -27.05), (3.5, -27.861898011))
                Line((3.5, -27.861898011), (3.5, -24.161898011))
                Line((3.5, -24.161898011), (-3.5, -24.161898011))
            make_face()
        extrude(amount=-BOSS_EXTRUDE10_DEPTH)

    # Sketch13 → Boss-Extrude11 (add)
    # profile 1 of 2: a face of its own
    with SkipClean():  # the faces are left unmerged after this step: merging them gives an invalid solid
        with BuildSketch(Plane(origin=(0, 0, -0.7), x_dir=(-1, 0, 0), z_dir=(0, 0, -1)).offset(BOSS_EXTRUDE11_START)):
            with BuildLine():
                ThreePointArc((-3.5, -27.861898011), (-4.205799567, -41.746387922), (7.95, -35))
                ThreePointArc((7.95, -35), (6.746387922, -30.794200433), (3.5, -27.861898011))
                ThreePointArc((3.5, -27.861898011), (0, -27.05), (-3.5, -27.861898011))
            make_face()
            with BuildLine():
                ThreePointArc((-6.062177826, -38.5), (-7, -35), (-6.062177826, -31.5))
                ThreePointArc((-6.062177826, -31.5), (-4.949747468, -30.050252532), (-3.5, -28.937822174))
                ThreePointArc((-3.5, -28.937822174), (0, -28), (3.5, -28.937822174))
                ThreePointArc((3.5, -28.937822174), (4.949747468, -30.050252532), (6.062177826, -31.5))
                ThreePointArc((6.062177826, -31.5), (6.761480784, -33.188266684), (7, -35))
                ThreePointArc((7, -35), (6.761480784, -36.811733316), (6.062177826, -38.5))
                ThreePointArc((6.062177826, -38.5), (4.949747468, -39.949747468), (3.5, -41.062177826))
                ThreePointArc((3.5, -41.062177826), (0, -42), (-3.5, -41.062177826))
                ThreePointArc((-3.5, -41.062177826), (-4.949747468, -39.949747468), (-6.062177826, -38.5))
            make_face(mode=Mode.SUBTRACT)
        # profile 2 of 2: a face of its own
        with BuildSketch(Plane(origin=(0, 0, -0.7), x_dir=(-1, 0, 0), z_dir=(0, 0, -1)).offset(BOSS_EXTRUDE11_START)):
            with BuildLine():
                Line((-3.5, -31.5), (-6.062177826, -31.5))
                ThreePointArc((-6.062177826, -31.5), (-7, -35), (-6.062177826, -38.5))
                Line((-6.062177826, -38.5), (-3.5, -38.5))
                Line((-3.5, -38.5), (-3.5, -41.062177826))
                ThreePointArc((-3.5, -41.062177826), (0, -42), (3.5, -41.062177826))
                Line((3.5, -41.062177826), (3.5, -38.5))
                Line((3.5, -38.5), (6.062177826, -38.5))
                ThreePointArc((6.062177826, -38.5), (6.761480784, -36.811733316), (7, -35))
                ThreePointArc((7, -35), (6.761480784, -33.188266684), (6.062177826, -31.5))
                Line((6.062177826, -31.5), (3.5, -31.5))
                Line((3.5, -31.5), (3.5, -28.937822174))
                ThreePointArc((3.5, -28.937822174), (0, -28), (-3.5, -28.937822174))
                Line((-3.5, -28.937822174), (-3.5, -31.5))
            make_face()
            with Locations((0, -35)):
                Circle(SKETCH13_R, mode=Mode.SUBTRACT)
        extrude(amount=-BOSS_EXTRUDE11_DEPTH)

    # Sketch14 → Cut-Extrude6 (cut, through all)
    with SkipClean():  # the faces are left unmerged after this step: merging them gives an invalid solid
        with BuildSketch(Plane.XY.offset(3)):
            Circle(SKETCH14_R)
        extrude(amount=-CUT_EXTRUDE6_DEPTH, mode=Mode.SUBTRACT)


solid = part.part
